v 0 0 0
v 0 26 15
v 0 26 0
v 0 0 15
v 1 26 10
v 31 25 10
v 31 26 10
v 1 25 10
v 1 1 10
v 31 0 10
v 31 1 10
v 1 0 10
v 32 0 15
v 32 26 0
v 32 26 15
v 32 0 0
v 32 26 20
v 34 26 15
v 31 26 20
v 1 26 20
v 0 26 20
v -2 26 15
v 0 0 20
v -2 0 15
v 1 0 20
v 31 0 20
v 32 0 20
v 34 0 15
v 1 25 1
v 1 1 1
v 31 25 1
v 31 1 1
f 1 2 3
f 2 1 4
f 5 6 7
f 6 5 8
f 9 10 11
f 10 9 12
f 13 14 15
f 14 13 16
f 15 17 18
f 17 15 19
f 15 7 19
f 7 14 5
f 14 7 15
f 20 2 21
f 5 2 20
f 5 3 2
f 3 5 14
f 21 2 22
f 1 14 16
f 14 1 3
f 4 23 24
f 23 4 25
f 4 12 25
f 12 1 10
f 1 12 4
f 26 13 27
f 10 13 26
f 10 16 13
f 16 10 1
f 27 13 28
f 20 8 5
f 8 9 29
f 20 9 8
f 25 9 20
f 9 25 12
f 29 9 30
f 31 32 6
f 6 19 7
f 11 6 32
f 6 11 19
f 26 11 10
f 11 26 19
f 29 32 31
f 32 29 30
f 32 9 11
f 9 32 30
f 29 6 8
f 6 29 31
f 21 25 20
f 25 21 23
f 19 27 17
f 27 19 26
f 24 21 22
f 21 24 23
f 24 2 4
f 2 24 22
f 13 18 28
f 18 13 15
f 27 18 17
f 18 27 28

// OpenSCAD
width = 26;
length = 32;
height = 10;
thickness = 1;

triangleThickness = 2;

difference() {
    cube([length, width, height]);
    translate([thickness, thickness, thickness]) cube([length - 2 * thickness, width - 2 * thickness, height - thickness]);
}

translate([0, 0, height]) difference() {
    cube([length, width, height]);
    translate([thickness, 0, 0]) cube([length - 2 * thickness, width, height]);
}

polyhedron(
    points=[
        [0, 0, 1.5 * height],
        [0, width, 1.5 * height],
        [-triangleThickness, width, 1.5 * height],
        [-triangleThickness, 0, 1.5 * height],
        [0, 0, 2 * height],
        [0, width, 2 * height]
    ],
    faces=[[0,1,2,3],[5,4,3,2],[0,4,5,1],[0,3,4],[5,2,1]]
);

polyhedron(
    points=[
        [length, 0, 1.5 * height],
        [length, width, 1.5 * height],
        [length + triangleThickness, width, 1.5 * height],
        [length + triangleThickness, 0, 1.5 * height],
        [length, 0, 2 * height],
        [length, width, 2 * height]
    ],
    faces=[[0,1,2,3],[5,4,3,2],[0,4,5,1],[0,3,4],[5,2,1]]
);
